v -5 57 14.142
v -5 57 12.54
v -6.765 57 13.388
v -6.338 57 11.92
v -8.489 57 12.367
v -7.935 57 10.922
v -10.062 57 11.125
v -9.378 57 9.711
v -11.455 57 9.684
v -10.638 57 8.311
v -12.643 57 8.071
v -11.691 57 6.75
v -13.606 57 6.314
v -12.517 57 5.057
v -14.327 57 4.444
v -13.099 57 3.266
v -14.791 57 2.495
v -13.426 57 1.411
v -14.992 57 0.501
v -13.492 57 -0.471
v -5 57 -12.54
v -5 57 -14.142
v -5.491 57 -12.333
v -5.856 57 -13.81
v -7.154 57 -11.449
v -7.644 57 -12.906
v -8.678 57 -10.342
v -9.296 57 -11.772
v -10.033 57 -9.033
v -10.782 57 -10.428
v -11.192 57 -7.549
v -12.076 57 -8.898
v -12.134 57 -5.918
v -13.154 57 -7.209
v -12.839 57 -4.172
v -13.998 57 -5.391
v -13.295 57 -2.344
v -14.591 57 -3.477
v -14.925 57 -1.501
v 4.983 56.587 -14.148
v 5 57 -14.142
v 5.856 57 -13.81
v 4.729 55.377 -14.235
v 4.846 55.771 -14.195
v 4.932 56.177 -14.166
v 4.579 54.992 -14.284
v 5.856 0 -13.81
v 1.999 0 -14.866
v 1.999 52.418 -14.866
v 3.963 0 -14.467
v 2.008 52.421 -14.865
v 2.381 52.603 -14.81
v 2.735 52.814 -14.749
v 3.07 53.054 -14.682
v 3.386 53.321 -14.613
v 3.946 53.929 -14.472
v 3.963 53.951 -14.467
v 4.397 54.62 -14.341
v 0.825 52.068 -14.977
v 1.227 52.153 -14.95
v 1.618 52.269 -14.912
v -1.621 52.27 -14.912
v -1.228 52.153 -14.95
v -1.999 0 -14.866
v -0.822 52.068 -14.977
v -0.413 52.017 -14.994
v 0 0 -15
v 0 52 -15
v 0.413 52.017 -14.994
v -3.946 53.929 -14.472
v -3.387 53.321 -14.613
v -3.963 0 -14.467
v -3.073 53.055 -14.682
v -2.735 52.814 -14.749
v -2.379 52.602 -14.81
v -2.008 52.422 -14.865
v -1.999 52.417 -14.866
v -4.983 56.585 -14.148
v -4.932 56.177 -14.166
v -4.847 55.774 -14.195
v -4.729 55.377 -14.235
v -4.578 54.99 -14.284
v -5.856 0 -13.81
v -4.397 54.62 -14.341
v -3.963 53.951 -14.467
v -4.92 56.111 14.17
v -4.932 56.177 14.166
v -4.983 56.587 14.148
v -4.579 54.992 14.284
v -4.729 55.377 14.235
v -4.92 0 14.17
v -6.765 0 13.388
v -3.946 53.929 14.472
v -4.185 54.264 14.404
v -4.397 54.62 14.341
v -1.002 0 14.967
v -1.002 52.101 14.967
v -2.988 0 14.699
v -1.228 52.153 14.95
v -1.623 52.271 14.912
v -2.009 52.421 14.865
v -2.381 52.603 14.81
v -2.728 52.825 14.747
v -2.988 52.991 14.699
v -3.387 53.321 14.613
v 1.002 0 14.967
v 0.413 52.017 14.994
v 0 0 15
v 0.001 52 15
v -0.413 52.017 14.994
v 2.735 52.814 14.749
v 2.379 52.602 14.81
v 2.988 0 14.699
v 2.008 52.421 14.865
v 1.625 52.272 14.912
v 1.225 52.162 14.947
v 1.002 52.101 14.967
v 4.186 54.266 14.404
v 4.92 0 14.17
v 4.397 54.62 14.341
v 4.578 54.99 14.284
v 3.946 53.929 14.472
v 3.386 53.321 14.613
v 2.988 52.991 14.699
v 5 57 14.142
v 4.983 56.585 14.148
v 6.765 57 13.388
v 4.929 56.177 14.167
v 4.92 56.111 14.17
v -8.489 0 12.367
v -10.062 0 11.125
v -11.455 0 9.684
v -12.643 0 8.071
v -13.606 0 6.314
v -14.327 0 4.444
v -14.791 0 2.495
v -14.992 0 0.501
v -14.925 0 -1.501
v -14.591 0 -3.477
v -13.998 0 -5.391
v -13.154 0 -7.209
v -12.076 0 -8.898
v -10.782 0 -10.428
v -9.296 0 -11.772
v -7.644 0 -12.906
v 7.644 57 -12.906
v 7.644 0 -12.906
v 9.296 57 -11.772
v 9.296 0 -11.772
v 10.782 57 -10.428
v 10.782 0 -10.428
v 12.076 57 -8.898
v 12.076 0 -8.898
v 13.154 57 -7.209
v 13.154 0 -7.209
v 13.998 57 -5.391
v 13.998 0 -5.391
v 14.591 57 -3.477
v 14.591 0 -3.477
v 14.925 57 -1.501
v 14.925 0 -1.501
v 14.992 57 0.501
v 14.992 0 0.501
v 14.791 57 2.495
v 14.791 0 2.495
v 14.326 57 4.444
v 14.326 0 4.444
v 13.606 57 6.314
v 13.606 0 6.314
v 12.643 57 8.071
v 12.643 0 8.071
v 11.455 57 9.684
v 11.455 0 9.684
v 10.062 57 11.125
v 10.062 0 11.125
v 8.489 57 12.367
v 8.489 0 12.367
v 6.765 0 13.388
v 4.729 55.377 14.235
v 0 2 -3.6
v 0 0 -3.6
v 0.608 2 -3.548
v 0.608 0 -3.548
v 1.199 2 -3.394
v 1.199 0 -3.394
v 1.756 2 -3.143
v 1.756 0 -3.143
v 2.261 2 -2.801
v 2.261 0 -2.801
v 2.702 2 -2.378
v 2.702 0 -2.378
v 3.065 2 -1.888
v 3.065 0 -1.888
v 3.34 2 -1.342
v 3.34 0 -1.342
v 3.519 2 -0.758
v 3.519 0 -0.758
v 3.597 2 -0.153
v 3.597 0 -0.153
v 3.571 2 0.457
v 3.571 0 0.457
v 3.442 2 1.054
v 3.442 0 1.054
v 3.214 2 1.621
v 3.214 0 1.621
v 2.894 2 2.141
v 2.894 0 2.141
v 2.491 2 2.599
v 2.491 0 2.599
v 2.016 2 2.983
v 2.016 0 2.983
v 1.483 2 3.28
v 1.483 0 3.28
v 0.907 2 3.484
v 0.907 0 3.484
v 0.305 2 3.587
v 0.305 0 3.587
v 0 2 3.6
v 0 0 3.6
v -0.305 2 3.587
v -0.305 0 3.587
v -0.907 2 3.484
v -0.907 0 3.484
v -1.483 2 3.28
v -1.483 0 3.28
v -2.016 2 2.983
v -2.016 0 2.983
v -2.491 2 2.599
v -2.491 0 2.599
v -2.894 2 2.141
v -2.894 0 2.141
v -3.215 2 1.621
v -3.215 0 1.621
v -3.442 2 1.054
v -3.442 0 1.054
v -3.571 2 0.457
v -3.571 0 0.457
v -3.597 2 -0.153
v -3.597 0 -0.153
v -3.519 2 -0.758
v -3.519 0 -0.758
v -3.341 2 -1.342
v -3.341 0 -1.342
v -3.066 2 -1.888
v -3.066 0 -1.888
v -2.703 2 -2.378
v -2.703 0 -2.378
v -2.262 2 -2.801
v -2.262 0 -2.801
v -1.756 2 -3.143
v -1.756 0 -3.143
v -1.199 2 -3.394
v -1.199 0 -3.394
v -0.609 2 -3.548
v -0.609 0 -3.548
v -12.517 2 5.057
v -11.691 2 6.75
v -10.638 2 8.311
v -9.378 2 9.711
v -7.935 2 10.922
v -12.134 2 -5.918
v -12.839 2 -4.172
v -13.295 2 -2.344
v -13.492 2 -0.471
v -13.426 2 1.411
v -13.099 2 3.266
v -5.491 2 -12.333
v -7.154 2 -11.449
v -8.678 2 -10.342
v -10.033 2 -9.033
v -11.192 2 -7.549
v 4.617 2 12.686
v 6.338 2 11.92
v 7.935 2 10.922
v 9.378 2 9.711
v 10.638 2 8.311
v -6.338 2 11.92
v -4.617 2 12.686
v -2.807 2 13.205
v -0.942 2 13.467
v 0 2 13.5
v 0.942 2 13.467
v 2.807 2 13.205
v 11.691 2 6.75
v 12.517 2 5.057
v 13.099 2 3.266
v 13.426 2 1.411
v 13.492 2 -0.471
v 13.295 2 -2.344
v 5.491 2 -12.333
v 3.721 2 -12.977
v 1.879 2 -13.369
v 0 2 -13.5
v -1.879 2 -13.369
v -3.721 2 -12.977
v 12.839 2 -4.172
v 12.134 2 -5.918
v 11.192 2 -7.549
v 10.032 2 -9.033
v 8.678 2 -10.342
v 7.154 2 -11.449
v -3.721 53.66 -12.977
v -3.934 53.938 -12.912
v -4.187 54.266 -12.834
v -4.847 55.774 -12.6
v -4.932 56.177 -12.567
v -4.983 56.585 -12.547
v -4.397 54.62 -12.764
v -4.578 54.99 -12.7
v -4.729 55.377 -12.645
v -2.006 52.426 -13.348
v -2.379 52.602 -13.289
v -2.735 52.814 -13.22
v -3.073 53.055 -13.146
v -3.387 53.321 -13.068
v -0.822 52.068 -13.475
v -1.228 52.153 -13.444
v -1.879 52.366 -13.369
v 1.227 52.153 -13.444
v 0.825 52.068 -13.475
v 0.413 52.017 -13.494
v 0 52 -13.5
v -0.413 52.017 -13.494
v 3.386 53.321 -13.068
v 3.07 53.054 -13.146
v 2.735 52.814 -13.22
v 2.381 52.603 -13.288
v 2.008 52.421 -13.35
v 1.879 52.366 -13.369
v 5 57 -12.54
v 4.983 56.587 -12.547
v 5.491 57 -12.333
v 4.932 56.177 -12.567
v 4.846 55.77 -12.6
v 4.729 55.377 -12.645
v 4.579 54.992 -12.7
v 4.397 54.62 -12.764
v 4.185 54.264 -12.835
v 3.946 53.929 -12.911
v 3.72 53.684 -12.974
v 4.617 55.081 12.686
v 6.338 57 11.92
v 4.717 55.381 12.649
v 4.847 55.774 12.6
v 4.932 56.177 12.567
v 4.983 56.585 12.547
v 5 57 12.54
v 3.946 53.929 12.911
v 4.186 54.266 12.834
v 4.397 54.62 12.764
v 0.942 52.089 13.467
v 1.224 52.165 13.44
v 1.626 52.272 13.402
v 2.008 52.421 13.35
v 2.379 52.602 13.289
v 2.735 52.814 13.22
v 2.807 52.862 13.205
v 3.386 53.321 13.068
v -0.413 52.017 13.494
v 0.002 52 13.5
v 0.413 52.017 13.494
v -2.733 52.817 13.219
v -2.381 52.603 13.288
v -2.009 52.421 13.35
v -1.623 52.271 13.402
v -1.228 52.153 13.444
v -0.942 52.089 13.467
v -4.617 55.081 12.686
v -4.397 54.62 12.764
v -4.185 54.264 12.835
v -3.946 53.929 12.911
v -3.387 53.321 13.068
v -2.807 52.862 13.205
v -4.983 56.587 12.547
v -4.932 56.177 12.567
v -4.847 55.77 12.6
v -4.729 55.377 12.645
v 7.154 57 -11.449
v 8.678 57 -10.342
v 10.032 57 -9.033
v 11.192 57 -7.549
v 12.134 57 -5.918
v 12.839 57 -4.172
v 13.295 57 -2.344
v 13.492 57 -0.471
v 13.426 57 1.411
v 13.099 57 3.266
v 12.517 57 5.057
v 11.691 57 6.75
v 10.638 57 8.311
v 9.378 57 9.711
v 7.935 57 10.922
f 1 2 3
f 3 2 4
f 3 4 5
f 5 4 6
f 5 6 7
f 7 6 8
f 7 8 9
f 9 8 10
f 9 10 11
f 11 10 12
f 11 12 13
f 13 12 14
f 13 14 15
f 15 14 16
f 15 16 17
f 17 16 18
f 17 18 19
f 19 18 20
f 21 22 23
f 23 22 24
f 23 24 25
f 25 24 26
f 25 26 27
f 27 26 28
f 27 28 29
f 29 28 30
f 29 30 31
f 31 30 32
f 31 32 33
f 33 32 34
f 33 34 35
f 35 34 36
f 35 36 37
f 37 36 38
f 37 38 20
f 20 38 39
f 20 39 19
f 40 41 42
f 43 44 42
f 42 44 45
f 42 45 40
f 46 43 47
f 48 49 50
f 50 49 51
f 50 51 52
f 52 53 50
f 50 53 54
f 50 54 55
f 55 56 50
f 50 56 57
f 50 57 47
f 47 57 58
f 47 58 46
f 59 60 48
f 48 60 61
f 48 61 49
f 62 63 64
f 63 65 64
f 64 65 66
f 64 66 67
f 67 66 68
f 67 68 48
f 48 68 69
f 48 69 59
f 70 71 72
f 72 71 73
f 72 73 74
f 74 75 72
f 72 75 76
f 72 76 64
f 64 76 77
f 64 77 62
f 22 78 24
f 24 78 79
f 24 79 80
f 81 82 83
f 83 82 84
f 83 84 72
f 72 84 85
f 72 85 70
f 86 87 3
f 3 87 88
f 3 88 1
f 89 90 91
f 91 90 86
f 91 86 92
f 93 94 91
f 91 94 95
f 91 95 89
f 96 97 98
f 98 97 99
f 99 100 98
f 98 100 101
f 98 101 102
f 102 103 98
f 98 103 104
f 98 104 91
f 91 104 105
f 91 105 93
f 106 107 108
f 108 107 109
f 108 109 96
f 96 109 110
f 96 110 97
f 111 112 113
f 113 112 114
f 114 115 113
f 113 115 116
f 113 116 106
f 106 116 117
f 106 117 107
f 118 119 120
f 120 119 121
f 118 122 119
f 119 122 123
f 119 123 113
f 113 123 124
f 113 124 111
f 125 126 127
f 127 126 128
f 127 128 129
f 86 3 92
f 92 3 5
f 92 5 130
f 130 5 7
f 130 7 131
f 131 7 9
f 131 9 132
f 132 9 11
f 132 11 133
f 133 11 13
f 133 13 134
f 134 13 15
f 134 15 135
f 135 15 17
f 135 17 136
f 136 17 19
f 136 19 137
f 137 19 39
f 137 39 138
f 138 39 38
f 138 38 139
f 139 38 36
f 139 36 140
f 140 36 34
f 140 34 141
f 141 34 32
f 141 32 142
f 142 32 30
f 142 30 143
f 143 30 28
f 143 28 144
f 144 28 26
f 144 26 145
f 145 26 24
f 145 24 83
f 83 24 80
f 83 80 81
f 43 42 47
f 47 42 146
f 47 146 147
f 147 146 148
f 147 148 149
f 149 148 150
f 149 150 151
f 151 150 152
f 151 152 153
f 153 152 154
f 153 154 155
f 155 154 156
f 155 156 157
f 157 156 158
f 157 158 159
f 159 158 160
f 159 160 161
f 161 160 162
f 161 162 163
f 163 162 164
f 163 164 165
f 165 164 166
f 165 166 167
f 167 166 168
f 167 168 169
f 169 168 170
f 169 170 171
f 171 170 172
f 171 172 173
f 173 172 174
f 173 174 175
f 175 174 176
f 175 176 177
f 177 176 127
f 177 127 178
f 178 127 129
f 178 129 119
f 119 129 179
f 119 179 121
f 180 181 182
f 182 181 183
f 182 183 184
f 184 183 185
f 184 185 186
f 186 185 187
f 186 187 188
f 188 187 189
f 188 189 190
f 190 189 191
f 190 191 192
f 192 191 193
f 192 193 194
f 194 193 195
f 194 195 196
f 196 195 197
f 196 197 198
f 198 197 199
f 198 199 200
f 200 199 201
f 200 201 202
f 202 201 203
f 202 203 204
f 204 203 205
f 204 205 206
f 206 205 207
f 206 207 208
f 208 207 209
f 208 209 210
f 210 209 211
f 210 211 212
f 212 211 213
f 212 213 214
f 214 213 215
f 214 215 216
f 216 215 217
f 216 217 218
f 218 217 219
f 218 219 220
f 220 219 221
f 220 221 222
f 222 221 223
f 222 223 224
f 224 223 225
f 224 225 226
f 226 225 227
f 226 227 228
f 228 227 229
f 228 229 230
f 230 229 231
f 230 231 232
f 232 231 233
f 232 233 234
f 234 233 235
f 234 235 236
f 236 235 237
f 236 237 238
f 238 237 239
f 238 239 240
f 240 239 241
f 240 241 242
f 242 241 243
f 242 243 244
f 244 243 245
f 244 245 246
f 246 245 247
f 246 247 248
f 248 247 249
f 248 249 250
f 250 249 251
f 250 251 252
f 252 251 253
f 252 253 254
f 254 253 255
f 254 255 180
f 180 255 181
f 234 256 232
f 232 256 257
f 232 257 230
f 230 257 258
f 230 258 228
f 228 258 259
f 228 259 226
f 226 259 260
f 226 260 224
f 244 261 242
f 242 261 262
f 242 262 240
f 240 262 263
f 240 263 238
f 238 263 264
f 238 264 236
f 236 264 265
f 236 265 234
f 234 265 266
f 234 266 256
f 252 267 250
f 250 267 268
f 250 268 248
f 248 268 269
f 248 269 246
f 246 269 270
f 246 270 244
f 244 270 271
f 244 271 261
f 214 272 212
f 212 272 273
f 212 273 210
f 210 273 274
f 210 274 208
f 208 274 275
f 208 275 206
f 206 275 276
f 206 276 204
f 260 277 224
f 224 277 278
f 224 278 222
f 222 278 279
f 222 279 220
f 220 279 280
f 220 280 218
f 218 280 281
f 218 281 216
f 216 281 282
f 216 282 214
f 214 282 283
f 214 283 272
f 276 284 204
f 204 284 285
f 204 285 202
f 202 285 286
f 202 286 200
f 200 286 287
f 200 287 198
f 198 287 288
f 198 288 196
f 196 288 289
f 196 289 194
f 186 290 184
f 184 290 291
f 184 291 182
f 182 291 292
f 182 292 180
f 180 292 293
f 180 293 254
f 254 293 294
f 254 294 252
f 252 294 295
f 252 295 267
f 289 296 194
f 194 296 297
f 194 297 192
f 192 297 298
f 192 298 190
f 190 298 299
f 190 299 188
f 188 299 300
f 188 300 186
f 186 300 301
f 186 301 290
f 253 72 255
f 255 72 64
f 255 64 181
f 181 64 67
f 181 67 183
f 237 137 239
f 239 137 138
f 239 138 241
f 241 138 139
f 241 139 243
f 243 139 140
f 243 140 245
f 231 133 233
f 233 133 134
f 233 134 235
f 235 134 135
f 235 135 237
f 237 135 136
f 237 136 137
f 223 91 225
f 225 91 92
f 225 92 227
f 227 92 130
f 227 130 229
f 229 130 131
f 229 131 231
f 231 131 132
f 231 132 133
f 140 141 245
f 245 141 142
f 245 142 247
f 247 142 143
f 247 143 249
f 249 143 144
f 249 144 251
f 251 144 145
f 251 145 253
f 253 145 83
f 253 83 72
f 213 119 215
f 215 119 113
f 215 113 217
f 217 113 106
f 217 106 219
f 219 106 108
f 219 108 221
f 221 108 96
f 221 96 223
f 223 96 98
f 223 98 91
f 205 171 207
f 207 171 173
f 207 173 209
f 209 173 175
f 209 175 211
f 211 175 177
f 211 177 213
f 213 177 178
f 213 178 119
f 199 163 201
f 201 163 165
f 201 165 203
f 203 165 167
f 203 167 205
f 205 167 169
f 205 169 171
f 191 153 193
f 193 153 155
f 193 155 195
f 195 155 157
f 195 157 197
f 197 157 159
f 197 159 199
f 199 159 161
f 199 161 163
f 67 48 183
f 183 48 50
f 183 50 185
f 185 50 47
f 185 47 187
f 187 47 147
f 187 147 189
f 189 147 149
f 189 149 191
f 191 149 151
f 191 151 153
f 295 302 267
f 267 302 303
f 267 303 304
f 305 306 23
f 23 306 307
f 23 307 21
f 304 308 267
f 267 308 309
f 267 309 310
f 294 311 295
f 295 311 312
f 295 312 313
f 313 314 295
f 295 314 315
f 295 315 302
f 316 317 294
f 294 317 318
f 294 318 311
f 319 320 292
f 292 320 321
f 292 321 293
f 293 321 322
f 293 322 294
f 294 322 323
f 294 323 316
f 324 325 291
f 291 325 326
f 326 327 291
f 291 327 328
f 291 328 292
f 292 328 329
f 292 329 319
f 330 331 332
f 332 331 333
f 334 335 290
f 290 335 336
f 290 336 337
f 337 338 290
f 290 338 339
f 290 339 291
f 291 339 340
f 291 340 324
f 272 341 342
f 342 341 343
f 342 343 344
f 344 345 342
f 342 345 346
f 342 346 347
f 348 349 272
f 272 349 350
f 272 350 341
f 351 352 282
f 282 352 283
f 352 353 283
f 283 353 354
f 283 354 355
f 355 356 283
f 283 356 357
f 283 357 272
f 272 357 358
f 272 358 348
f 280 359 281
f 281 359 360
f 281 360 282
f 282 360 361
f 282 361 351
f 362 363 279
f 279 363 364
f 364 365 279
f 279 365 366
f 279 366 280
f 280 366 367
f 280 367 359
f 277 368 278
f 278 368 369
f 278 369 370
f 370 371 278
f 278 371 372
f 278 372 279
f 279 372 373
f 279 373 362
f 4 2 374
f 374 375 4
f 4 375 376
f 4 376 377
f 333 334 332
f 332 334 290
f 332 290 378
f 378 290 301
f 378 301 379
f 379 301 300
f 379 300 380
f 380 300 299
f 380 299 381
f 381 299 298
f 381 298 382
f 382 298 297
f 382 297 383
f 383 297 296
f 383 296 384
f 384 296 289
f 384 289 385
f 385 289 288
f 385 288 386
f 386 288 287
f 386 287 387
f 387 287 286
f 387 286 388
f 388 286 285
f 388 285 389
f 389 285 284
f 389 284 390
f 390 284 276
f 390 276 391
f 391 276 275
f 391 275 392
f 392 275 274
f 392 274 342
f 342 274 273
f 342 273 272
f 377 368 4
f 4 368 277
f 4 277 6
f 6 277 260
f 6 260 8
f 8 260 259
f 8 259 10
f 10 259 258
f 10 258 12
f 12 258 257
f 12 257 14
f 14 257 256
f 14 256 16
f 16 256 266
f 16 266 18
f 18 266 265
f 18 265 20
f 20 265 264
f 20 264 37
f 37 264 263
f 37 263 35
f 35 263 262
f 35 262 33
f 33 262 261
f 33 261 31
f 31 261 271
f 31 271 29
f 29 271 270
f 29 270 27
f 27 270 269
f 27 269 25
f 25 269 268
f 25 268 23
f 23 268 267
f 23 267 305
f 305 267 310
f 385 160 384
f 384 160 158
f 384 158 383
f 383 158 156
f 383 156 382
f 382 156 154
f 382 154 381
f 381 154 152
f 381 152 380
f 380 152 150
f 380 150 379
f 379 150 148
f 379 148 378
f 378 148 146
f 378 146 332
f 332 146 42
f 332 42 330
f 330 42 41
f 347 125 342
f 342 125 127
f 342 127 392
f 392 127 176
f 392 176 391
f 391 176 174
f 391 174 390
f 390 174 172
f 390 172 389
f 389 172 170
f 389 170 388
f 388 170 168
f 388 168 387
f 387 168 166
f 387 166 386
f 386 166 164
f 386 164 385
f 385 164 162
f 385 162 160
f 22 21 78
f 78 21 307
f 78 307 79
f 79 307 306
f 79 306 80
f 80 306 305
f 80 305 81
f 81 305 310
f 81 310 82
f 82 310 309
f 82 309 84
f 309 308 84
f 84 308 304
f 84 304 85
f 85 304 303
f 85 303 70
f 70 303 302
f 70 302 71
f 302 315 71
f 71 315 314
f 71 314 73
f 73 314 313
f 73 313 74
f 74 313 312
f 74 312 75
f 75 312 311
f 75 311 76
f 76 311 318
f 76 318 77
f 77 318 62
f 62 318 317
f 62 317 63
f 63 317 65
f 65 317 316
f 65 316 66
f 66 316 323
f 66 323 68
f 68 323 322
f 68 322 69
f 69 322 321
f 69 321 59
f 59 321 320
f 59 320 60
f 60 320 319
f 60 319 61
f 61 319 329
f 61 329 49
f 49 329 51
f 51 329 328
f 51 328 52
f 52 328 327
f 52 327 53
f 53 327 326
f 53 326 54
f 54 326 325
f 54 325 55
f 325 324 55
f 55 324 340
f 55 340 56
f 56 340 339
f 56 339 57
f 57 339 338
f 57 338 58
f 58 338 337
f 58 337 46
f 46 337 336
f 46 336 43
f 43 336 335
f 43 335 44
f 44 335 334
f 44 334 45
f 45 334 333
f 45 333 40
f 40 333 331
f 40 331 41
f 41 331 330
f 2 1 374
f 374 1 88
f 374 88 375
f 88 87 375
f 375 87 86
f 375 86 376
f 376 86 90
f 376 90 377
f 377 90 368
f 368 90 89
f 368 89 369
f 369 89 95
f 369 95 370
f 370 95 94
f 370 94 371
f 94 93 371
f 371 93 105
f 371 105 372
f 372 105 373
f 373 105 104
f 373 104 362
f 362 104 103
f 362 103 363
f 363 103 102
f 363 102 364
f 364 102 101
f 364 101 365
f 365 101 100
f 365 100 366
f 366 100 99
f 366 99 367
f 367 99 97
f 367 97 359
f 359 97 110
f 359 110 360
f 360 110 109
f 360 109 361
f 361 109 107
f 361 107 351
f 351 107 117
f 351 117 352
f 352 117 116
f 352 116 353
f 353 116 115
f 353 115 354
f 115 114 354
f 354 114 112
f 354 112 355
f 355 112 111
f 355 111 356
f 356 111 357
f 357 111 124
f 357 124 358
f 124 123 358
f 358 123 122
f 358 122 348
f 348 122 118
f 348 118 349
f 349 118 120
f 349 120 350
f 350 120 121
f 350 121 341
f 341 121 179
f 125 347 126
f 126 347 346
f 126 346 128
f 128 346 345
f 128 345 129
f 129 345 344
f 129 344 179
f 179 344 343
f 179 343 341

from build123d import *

# Parameters (mm, degrees)
SKETCH1_R           = 15
SKETCH1_R_2         = 3.6
BOSS_EXTRUDE1_DEPTH = 2
SKETCH1_3_R         = 15
SKETCH1_3_R_2       = 13.5
BOSS_EXTRUDE2_DEPTH = 57
SKETCH3_R           = 5
CUT_EXTRUDE2_DEPTH  = 57


with BuildPart() as part:
    # Sketch1 → Boss-Extrude1 (new body)
    with BuildSketch(Plane(origin=(0, 0, 0), x_dir=(1, 0, 0), z_dir=(0, 1, 0))):
        Circle(SKETCH1_R)
        Circle(SKETCH1_R_2, mode=Mode.SUBTRACT)
    extrude(amount=BOSS_EXTRUDE1_DEPTH)

    # Sketch1<3> → Boss-Extrude2 (add)
    with BuildSketch(Plane(origin=(0, 0, 0), x_dir=(1, 0, 0), z_dir=(0, 1, 0))):
        Circle(SKETCH1_3_R)
        Circle(SKETCH1_3_R_2, mode=Mode.SUBTRACT)
    extrude(amount=BOSS_EXTRUDE2_DEPTH)

    # Sketch3 → Cut-Extrude2 (cut)
    with BuildSketch(Plane.XY.offset(15)):
        with Locations((0, 57)):
            Circle(SKETCH3_R)
    extrude(amount=-CUT_EXTRUDE2_DEPTH, mode=Mode.SUBTRACT)


solid = part.part
